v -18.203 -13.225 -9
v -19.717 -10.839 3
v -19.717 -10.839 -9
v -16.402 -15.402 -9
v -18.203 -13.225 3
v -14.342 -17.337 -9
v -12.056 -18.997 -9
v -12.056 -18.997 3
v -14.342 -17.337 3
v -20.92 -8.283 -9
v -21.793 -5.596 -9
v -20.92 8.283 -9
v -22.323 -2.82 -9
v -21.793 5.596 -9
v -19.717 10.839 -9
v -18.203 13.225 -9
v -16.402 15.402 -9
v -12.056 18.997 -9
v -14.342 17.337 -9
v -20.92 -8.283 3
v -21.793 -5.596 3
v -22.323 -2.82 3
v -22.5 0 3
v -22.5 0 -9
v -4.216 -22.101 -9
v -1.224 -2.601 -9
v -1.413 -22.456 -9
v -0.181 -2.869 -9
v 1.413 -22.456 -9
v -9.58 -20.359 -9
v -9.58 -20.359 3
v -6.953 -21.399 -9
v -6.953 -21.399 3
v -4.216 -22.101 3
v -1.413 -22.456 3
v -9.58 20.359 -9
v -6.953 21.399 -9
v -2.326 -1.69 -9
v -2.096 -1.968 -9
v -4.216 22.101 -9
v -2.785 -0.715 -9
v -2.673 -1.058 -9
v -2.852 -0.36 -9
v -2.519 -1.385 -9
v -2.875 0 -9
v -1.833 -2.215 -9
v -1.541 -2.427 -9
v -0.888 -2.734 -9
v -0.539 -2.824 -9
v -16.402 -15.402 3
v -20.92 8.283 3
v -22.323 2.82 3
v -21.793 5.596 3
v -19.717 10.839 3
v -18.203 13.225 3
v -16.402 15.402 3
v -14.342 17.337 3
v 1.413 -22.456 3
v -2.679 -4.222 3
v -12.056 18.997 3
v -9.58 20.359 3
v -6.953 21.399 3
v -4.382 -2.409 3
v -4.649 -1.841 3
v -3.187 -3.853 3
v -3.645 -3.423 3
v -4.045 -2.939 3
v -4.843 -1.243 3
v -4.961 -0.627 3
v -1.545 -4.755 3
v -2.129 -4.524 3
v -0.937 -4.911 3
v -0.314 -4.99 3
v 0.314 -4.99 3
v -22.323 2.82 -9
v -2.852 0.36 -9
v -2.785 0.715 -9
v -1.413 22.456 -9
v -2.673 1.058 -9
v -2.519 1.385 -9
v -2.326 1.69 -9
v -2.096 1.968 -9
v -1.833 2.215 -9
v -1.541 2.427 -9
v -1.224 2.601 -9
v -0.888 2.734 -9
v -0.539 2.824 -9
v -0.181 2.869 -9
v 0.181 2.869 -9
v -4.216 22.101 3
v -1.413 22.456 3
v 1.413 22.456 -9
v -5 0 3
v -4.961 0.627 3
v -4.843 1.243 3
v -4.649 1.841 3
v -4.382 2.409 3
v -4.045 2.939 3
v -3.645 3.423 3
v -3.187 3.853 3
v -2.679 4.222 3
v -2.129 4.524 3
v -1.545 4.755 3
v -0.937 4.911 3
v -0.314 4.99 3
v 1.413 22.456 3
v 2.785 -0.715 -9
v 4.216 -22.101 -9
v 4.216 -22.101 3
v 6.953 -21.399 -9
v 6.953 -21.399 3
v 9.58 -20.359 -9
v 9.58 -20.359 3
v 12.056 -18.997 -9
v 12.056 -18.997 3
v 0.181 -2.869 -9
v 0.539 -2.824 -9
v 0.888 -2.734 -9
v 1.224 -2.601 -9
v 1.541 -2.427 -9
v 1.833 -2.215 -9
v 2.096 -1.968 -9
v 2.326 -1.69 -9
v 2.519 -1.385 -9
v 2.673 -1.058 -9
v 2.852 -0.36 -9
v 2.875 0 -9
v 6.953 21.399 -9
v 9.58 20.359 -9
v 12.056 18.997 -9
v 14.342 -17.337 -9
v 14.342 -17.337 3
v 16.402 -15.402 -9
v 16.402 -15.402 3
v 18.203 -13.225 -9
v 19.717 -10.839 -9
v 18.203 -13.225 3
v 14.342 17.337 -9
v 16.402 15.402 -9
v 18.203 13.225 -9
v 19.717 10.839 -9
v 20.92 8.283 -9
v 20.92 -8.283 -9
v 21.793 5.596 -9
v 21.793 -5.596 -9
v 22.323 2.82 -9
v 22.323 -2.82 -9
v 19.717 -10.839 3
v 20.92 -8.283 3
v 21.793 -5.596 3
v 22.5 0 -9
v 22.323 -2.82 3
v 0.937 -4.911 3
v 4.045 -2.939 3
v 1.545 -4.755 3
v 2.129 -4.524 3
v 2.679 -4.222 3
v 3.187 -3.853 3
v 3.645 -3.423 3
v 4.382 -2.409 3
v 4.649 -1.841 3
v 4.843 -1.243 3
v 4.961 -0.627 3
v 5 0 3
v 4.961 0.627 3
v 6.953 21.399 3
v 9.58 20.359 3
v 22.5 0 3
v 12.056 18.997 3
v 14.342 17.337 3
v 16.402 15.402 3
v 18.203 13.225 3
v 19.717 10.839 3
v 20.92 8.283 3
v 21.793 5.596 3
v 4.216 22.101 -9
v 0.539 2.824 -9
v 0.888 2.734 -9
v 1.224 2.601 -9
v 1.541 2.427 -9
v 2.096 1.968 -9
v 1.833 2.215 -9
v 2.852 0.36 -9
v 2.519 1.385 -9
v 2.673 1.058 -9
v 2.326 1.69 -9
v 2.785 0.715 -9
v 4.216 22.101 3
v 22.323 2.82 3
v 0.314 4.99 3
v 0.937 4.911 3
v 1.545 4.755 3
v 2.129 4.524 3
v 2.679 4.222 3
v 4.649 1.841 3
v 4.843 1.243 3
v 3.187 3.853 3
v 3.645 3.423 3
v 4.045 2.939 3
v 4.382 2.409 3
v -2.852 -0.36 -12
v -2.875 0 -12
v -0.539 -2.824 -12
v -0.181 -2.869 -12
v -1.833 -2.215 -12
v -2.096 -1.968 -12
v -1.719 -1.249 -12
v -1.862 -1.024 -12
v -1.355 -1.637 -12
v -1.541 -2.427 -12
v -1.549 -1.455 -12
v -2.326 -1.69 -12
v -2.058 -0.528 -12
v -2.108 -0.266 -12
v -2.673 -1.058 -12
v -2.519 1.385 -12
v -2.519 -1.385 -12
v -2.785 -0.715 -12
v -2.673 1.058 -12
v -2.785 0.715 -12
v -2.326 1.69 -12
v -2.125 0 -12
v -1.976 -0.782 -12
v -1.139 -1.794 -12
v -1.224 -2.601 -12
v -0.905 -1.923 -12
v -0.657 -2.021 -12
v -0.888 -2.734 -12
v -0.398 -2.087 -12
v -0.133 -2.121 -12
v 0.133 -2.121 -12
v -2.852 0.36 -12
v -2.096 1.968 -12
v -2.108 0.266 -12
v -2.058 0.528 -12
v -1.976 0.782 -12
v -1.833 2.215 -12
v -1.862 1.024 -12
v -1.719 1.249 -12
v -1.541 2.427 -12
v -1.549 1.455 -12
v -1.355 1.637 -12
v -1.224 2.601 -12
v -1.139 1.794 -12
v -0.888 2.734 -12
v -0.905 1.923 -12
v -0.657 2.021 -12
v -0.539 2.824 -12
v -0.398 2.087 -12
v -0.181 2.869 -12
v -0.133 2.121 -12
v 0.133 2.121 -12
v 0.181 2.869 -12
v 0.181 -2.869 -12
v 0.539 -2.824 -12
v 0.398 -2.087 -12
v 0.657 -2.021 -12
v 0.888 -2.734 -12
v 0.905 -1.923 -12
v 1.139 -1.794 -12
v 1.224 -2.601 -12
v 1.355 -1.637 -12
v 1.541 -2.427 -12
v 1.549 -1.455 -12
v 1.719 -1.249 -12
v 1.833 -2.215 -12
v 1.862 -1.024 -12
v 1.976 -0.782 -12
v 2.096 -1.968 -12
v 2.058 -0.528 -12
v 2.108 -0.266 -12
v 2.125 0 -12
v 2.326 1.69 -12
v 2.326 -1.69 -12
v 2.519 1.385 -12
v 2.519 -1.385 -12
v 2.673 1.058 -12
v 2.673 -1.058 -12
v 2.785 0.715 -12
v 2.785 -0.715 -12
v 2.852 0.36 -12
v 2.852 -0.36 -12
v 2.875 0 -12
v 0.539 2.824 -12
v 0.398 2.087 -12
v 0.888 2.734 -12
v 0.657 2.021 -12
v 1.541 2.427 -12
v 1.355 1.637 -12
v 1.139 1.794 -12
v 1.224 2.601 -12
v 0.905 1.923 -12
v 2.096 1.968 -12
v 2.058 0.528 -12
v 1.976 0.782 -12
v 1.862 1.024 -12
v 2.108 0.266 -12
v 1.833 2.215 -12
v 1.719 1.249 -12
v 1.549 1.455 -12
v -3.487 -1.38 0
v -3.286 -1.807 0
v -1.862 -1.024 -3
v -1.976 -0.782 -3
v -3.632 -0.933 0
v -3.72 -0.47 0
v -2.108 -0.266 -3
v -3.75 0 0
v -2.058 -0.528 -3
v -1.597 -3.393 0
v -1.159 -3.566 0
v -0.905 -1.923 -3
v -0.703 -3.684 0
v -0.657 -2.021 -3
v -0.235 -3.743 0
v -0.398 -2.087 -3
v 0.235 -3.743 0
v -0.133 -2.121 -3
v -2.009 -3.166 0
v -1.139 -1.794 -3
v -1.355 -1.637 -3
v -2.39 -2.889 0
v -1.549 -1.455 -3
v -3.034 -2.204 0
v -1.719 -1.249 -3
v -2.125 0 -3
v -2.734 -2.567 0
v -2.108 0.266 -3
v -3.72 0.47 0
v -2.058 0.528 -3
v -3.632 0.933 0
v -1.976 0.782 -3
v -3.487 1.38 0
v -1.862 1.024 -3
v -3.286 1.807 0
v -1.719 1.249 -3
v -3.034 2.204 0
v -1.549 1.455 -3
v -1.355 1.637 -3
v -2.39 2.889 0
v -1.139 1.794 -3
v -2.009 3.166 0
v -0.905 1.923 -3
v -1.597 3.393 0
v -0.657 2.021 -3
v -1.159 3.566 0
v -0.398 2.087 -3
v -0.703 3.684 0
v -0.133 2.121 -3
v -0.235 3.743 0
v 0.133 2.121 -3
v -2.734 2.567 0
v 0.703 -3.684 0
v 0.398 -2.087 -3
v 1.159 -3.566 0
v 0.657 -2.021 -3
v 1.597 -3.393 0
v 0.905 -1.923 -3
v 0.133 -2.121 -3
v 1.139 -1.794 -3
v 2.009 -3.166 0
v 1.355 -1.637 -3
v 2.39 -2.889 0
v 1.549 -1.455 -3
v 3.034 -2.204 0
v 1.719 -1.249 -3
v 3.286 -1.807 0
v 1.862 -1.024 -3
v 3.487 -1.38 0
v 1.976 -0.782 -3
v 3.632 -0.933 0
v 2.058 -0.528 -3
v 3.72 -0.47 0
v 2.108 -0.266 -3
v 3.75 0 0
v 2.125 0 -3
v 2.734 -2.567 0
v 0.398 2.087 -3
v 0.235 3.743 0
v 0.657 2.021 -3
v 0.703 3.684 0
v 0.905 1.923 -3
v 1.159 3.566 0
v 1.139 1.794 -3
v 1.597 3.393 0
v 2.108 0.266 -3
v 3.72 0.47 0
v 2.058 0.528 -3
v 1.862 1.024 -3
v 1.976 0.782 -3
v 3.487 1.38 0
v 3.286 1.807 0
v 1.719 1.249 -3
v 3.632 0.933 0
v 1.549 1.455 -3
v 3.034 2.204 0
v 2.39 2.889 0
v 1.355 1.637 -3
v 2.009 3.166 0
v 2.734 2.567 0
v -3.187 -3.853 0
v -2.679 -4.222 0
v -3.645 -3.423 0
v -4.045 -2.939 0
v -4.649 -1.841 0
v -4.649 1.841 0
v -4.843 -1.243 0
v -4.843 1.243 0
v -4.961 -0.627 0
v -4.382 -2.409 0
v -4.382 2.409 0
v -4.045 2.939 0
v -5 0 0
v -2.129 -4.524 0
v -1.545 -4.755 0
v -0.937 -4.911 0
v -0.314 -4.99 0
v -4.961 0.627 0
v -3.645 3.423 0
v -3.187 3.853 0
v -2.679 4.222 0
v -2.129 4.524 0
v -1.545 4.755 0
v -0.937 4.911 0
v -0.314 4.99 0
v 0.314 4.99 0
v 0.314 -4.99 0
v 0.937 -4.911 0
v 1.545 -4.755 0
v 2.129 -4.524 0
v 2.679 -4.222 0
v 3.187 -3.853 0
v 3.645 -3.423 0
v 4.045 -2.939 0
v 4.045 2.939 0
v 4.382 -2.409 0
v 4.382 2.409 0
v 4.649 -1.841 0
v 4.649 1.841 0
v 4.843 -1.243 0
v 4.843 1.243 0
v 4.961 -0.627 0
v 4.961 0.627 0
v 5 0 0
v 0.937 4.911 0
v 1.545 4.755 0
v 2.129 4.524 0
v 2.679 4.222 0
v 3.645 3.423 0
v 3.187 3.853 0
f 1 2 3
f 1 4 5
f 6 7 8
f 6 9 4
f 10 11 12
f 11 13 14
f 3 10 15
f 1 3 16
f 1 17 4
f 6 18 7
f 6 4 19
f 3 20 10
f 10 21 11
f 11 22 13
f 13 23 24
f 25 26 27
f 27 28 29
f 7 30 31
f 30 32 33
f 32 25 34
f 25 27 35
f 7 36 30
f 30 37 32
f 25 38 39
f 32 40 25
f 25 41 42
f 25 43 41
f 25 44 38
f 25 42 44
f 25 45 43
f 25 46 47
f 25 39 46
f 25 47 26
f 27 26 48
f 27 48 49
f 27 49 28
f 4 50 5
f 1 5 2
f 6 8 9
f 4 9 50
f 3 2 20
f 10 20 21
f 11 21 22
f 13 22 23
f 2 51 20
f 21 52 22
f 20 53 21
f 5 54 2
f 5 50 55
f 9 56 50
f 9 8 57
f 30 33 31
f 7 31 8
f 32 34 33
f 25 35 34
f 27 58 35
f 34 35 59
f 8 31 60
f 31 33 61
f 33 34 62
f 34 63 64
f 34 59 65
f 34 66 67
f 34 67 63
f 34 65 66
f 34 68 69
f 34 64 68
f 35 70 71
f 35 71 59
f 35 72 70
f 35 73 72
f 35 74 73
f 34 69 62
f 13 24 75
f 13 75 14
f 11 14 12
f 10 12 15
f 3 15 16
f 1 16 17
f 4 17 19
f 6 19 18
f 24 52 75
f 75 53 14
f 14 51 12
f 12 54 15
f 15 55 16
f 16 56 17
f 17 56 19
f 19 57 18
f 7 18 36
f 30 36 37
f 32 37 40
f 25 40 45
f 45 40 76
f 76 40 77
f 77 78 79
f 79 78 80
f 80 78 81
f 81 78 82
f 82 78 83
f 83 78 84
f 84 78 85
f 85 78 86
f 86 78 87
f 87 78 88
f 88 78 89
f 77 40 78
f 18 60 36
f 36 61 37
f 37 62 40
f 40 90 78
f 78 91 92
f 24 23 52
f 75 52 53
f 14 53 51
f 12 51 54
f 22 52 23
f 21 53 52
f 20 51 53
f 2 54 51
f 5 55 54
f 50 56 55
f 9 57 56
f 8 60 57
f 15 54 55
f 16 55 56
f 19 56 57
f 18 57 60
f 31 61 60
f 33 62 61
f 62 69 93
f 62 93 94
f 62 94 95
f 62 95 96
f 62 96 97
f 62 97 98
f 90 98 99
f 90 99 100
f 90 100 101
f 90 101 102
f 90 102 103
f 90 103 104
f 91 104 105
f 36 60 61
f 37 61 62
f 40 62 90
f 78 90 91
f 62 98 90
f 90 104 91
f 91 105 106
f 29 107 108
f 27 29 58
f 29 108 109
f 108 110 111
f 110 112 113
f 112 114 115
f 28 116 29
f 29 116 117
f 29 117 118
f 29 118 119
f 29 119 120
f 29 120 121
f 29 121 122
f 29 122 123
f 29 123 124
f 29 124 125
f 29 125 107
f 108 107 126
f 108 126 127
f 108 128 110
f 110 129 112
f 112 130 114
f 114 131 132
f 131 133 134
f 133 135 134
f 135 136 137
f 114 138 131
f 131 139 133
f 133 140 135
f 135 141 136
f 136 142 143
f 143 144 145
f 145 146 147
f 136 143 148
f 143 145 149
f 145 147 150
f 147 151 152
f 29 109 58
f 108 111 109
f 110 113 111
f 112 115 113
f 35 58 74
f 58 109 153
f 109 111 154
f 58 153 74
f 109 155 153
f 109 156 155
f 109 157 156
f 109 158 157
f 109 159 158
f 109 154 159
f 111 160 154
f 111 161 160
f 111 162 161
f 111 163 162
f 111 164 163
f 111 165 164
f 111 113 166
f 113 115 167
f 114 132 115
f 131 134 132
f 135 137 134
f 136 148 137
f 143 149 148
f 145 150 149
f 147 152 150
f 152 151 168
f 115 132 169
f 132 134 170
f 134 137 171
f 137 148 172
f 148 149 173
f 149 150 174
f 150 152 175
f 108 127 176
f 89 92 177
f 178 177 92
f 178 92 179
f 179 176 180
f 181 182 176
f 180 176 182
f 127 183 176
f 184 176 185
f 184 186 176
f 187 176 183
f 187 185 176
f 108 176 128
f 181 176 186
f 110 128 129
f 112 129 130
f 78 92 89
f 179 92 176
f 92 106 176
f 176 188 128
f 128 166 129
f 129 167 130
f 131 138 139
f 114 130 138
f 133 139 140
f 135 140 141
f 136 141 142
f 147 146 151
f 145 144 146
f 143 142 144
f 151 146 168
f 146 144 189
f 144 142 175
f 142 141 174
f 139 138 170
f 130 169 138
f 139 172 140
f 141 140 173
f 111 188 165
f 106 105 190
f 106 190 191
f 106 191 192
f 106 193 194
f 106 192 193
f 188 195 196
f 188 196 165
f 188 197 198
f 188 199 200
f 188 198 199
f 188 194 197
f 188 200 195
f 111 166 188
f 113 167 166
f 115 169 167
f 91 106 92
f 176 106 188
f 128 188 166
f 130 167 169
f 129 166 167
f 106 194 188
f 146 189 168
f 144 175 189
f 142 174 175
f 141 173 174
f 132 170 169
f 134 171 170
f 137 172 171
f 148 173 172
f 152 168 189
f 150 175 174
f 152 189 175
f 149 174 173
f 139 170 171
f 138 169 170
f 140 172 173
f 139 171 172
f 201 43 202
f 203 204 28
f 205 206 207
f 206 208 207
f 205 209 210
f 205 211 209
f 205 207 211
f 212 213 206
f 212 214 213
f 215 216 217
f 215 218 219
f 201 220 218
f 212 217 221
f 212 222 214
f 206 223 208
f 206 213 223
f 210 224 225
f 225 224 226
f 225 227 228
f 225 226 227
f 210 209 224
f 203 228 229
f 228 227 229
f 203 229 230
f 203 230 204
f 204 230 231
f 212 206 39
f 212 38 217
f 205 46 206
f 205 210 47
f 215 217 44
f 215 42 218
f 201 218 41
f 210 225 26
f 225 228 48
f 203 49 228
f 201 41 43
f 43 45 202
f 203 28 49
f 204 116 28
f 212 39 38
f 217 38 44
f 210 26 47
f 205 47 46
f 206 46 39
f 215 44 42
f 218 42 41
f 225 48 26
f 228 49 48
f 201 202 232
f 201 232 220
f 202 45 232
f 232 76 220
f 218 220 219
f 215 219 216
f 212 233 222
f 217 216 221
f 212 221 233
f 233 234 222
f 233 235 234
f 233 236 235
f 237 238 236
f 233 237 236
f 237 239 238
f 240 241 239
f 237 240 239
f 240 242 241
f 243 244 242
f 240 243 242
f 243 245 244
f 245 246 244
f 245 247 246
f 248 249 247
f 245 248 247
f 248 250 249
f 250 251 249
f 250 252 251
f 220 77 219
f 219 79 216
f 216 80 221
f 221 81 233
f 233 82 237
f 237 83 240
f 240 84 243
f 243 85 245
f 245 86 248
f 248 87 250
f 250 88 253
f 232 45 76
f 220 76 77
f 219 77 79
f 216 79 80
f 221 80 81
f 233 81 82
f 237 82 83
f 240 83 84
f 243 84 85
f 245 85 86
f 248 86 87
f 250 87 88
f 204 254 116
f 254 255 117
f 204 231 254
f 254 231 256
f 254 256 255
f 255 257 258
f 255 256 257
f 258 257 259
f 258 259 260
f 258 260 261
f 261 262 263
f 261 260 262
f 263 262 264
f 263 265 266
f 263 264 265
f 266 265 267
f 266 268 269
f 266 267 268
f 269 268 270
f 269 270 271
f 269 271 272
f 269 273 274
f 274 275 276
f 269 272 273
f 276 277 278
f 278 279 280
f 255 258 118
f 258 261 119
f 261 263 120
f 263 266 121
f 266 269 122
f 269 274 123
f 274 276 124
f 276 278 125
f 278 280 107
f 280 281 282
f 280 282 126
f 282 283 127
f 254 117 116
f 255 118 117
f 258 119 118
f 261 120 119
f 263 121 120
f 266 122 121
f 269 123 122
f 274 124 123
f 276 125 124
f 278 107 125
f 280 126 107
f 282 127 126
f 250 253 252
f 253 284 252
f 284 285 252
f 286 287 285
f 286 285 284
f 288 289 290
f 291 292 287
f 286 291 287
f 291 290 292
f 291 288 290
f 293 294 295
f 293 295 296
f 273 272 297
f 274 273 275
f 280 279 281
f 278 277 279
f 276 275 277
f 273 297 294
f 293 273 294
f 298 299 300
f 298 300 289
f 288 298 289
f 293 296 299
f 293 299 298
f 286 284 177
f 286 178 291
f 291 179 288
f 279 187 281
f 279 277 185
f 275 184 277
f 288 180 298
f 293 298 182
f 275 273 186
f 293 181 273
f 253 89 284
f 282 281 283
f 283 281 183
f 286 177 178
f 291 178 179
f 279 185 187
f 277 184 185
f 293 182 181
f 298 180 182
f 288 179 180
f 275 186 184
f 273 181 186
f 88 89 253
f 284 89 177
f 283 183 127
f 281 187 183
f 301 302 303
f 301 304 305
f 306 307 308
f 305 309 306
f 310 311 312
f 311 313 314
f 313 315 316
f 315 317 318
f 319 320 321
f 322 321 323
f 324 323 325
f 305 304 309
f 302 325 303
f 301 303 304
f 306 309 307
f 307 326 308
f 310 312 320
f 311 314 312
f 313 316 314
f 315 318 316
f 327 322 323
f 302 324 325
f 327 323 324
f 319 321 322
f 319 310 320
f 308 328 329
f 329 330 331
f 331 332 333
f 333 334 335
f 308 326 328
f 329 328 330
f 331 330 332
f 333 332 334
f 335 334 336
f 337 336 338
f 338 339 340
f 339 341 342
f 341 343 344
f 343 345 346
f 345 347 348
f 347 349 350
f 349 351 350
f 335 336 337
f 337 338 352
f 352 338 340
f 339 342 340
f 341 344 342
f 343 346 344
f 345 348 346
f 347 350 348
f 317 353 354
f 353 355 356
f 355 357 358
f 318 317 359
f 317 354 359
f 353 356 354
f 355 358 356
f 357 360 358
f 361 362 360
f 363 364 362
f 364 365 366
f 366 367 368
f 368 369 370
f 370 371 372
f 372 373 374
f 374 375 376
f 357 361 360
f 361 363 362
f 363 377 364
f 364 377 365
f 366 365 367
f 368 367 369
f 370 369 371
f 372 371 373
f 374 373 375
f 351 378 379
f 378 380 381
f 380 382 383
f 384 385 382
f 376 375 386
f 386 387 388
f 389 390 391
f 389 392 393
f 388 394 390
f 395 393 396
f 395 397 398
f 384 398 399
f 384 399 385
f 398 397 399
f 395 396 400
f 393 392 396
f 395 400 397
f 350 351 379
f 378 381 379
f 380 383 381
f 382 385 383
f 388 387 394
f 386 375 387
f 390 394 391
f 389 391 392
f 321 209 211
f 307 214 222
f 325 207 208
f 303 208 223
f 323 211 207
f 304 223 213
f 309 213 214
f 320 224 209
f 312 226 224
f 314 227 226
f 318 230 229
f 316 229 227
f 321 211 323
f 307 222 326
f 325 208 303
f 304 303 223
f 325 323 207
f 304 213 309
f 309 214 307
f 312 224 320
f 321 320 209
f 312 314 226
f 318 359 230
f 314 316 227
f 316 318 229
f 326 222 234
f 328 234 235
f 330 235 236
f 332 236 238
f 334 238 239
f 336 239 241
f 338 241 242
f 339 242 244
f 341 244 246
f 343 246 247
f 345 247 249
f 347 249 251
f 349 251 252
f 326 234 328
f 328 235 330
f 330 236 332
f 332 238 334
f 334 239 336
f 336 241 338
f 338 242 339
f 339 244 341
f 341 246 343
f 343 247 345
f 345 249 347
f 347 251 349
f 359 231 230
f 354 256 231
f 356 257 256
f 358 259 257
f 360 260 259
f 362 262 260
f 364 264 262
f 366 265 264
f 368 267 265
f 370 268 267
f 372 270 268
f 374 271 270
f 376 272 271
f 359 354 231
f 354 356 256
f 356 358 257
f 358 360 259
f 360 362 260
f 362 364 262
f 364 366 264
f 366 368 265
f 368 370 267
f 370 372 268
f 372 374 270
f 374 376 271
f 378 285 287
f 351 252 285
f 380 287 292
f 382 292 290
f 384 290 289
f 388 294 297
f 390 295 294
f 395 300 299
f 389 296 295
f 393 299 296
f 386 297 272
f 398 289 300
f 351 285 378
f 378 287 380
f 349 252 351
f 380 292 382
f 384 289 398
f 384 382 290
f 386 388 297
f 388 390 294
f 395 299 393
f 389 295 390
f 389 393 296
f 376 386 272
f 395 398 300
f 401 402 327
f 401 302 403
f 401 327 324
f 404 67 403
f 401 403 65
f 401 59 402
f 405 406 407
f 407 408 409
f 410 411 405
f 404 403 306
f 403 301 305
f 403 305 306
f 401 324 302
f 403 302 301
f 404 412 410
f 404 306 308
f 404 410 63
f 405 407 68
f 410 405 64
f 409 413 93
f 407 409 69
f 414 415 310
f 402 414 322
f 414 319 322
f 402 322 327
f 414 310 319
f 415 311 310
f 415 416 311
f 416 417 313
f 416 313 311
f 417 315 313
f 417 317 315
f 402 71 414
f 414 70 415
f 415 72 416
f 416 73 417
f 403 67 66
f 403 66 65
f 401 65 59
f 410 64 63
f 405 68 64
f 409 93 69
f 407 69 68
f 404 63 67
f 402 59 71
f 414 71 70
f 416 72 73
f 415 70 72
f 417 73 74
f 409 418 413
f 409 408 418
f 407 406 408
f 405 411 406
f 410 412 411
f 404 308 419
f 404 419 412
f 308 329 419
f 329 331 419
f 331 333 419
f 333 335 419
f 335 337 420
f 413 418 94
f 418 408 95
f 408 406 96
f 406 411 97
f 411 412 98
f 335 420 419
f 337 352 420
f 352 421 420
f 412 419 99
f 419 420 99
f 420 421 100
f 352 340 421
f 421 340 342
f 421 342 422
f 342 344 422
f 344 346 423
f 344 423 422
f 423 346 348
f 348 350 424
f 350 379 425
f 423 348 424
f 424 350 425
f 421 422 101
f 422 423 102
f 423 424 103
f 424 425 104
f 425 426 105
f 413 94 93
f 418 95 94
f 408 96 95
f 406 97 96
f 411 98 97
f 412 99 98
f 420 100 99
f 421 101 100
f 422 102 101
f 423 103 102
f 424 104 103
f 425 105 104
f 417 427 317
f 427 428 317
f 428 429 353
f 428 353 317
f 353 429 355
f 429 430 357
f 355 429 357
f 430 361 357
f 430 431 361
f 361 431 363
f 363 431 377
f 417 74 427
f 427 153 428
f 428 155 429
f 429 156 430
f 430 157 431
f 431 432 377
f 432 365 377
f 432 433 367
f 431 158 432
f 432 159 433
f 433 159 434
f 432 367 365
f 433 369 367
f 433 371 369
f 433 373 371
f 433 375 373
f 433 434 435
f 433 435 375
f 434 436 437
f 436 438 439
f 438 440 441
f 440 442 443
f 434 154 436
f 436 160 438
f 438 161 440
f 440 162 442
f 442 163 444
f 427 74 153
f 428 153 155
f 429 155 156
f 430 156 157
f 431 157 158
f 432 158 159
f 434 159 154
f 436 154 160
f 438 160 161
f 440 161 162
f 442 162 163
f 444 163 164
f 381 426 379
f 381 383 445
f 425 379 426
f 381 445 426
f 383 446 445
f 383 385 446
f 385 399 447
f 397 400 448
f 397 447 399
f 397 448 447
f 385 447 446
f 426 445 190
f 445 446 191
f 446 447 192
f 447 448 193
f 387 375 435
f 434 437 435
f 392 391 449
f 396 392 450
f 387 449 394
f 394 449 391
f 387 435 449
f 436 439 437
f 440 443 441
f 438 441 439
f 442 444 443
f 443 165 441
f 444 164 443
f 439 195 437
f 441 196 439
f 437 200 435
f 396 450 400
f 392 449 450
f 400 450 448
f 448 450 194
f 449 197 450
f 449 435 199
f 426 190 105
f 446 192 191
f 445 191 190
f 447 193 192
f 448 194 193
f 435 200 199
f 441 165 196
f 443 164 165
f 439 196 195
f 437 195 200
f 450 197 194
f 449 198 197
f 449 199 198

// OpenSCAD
$fn = 50;


difference() {
	union() {
		translate(v = [0, 0, -9.0000000000]) {
			cylinder(h = 12, r = 22.5000000000);
		}
		#translate(v = [0, 0, -12.0000000000]) {
			cylinder(h = 12, r = 2.8750000000);
		}
	}
	union() {
		translate(v = [0, 0, 0]) {
			rotate(a = [0, 0, 0]) {
				difference() {
					union() {
						translate(v = [0, 0, -12.0000000000]) {
							cylinder(h = 12, r = 2.0000000000);
						}
						translate(v = [0, 0, -3]) {
							cylinder(h = 3, r1 = 2.1250000000, r2 = 3.7500000000);
						}
						translate(v = [0, 0, -12.0000000000]) {
							cylinder(h = 12, r = 2.1250000000);
						}
						translate(v = [0, 0, -12.0000000000]) {
							cylinder(h = 12, r = 2.0000000000);
						}
					}
					union();
				}
			}
		}
		#cylinder(h = 3, r = 5.0000000000);
	}
}
